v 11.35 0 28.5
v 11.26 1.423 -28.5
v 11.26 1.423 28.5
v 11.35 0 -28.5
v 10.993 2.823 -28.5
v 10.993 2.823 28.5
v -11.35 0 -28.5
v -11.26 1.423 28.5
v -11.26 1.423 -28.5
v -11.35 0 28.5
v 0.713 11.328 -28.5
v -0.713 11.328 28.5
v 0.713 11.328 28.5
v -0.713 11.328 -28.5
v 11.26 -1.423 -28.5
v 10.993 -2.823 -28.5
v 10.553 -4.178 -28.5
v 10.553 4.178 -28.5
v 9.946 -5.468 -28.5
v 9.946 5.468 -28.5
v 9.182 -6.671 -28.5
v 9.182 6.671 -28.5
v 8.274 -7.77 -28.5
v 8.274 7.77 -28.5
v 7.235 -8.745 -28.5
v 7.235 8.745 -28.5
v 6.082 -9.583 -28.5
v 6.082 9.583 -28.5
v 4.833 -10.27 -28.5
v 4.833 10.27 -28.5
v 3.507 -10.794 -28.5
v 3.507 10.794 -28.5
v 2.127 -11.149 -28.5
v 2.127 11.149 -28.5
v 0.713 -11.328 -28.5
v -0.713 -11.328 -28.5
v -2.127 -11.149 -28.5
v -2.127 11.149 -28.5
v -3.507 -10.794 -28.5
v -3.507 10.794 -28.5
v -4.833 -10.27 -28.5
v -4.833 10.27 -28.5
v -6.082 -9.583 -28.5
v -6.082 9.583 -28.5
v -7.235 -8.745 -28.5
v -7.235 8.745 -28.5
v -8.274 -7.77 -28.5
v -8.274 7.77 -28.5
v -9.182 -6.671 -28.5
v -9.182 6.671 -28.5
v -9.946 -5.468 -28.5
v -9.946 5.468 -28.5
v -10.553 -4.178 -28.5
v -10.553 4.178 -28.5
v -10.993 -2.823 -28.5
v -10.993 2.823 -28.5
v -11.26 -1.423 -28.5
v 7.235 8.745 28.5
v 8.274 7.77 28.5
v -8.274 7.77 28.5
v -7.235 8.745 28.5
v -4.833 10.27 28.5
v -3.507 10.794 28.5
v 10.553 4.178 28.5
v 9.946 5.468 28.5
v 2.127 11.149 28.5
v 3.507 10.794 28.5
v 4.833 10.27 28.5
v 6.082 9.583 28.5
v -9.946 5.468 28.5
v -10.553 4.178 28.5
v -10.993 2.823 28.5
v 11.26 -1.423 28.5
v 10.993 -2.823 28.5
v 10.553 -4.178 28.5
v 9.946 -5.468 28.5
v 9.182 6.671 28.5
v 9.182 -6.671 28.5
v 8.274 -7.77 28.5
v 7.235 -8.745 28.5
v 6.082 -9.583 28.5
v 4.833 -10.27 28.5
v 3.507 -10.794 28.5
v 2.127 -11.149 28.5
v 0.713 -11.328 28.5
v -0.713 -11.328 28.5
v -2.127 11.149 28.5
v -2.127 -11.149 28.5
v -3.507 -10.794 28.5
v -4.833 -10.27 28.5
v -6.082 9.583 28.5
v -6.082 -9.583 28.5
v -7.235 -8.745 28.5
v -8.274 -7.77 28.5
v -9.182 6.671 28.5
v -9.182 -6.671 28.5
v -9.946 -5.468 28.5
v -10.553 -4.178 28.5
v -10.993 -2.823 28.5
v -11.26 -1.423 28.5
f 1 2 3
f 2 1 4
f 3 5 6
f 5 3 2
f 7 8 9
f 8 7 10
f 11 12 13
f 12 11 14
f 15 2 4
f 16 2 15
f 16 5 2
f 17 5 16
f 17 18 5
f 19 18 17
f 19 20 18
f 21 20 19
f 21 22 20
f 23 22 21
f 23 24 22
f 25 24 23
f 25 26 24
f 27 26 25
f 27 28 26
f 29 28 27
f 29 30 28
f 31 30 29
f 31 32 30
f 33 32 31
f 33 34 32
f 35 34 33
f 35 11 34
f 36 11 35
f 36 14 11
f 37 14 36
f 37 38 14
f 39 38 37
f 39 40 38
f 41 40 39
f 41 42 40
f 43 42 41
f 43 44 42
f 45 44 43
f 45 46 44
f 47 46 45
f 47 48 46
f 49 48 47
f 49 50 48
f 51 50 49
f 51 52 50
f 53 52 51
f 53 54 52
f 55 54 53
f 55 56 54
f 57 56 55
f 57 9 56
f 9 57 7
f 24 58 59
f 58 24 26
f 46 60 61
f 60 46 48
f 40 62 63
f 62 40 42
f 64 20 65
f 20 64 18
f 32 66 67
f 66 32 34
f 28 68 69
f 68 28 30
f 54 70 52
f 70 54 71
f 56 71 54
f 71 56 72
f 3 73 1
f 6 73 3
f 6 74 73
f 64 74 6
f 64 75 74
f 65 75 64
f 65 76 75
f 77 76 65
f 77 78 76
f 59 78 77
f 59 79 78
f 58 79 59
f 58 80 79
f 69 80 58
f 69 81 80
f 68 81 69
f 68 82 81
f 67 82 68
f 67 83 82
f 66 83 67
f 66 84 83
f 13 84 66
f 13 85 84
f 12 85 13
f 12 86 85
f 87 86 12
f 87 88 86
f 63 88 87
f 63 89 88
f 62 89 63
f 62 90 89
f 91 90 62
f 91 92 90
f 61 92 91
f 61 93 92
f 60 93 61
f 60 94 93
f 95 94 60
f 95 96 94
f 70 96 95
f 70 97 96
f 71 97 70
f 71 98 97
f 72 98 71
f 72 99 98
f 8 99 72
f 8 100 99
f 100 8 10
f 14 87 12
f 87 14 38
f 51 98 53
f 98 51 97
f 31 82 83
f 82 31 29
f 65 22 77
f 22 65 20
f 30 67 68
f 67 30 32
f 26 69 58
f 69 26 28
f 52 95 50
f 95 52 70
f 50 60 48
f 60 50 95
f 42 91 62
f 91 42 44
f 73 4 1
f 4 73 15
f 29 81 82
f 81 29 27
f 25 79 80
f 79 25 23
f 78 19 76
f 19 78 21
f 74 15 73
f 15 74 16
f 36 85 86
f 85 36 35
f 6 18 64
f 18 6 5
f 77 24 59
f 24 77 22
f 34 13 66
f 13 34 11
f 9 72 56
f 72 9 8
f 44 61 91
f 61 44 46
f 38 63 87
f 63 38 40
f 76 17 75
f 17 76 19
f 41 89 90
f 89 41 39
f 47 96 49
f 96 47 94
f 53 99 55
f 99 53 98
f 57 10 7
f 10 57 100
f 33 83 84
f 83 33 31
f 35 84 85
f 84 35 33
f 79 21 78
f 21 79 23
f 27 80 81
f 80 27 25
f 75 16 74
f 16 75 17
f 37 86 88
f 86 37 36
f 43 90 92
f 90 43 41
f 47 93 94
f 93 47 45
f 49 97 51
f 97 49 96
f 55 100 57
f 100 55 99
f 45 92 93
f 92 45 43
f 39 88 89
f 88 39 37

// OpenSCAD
$fn = 50;


difference() {
	union() {
		translate(v = [0, 0, -28.5000000000]) {
			cylinder(h = 57, r = 11.3500000000);
		}
	}
	union() {
		translate(v = [0, 0, -100.0000000000]) {
			cylinder(h = 200, r = 0);
		}
	}
}
